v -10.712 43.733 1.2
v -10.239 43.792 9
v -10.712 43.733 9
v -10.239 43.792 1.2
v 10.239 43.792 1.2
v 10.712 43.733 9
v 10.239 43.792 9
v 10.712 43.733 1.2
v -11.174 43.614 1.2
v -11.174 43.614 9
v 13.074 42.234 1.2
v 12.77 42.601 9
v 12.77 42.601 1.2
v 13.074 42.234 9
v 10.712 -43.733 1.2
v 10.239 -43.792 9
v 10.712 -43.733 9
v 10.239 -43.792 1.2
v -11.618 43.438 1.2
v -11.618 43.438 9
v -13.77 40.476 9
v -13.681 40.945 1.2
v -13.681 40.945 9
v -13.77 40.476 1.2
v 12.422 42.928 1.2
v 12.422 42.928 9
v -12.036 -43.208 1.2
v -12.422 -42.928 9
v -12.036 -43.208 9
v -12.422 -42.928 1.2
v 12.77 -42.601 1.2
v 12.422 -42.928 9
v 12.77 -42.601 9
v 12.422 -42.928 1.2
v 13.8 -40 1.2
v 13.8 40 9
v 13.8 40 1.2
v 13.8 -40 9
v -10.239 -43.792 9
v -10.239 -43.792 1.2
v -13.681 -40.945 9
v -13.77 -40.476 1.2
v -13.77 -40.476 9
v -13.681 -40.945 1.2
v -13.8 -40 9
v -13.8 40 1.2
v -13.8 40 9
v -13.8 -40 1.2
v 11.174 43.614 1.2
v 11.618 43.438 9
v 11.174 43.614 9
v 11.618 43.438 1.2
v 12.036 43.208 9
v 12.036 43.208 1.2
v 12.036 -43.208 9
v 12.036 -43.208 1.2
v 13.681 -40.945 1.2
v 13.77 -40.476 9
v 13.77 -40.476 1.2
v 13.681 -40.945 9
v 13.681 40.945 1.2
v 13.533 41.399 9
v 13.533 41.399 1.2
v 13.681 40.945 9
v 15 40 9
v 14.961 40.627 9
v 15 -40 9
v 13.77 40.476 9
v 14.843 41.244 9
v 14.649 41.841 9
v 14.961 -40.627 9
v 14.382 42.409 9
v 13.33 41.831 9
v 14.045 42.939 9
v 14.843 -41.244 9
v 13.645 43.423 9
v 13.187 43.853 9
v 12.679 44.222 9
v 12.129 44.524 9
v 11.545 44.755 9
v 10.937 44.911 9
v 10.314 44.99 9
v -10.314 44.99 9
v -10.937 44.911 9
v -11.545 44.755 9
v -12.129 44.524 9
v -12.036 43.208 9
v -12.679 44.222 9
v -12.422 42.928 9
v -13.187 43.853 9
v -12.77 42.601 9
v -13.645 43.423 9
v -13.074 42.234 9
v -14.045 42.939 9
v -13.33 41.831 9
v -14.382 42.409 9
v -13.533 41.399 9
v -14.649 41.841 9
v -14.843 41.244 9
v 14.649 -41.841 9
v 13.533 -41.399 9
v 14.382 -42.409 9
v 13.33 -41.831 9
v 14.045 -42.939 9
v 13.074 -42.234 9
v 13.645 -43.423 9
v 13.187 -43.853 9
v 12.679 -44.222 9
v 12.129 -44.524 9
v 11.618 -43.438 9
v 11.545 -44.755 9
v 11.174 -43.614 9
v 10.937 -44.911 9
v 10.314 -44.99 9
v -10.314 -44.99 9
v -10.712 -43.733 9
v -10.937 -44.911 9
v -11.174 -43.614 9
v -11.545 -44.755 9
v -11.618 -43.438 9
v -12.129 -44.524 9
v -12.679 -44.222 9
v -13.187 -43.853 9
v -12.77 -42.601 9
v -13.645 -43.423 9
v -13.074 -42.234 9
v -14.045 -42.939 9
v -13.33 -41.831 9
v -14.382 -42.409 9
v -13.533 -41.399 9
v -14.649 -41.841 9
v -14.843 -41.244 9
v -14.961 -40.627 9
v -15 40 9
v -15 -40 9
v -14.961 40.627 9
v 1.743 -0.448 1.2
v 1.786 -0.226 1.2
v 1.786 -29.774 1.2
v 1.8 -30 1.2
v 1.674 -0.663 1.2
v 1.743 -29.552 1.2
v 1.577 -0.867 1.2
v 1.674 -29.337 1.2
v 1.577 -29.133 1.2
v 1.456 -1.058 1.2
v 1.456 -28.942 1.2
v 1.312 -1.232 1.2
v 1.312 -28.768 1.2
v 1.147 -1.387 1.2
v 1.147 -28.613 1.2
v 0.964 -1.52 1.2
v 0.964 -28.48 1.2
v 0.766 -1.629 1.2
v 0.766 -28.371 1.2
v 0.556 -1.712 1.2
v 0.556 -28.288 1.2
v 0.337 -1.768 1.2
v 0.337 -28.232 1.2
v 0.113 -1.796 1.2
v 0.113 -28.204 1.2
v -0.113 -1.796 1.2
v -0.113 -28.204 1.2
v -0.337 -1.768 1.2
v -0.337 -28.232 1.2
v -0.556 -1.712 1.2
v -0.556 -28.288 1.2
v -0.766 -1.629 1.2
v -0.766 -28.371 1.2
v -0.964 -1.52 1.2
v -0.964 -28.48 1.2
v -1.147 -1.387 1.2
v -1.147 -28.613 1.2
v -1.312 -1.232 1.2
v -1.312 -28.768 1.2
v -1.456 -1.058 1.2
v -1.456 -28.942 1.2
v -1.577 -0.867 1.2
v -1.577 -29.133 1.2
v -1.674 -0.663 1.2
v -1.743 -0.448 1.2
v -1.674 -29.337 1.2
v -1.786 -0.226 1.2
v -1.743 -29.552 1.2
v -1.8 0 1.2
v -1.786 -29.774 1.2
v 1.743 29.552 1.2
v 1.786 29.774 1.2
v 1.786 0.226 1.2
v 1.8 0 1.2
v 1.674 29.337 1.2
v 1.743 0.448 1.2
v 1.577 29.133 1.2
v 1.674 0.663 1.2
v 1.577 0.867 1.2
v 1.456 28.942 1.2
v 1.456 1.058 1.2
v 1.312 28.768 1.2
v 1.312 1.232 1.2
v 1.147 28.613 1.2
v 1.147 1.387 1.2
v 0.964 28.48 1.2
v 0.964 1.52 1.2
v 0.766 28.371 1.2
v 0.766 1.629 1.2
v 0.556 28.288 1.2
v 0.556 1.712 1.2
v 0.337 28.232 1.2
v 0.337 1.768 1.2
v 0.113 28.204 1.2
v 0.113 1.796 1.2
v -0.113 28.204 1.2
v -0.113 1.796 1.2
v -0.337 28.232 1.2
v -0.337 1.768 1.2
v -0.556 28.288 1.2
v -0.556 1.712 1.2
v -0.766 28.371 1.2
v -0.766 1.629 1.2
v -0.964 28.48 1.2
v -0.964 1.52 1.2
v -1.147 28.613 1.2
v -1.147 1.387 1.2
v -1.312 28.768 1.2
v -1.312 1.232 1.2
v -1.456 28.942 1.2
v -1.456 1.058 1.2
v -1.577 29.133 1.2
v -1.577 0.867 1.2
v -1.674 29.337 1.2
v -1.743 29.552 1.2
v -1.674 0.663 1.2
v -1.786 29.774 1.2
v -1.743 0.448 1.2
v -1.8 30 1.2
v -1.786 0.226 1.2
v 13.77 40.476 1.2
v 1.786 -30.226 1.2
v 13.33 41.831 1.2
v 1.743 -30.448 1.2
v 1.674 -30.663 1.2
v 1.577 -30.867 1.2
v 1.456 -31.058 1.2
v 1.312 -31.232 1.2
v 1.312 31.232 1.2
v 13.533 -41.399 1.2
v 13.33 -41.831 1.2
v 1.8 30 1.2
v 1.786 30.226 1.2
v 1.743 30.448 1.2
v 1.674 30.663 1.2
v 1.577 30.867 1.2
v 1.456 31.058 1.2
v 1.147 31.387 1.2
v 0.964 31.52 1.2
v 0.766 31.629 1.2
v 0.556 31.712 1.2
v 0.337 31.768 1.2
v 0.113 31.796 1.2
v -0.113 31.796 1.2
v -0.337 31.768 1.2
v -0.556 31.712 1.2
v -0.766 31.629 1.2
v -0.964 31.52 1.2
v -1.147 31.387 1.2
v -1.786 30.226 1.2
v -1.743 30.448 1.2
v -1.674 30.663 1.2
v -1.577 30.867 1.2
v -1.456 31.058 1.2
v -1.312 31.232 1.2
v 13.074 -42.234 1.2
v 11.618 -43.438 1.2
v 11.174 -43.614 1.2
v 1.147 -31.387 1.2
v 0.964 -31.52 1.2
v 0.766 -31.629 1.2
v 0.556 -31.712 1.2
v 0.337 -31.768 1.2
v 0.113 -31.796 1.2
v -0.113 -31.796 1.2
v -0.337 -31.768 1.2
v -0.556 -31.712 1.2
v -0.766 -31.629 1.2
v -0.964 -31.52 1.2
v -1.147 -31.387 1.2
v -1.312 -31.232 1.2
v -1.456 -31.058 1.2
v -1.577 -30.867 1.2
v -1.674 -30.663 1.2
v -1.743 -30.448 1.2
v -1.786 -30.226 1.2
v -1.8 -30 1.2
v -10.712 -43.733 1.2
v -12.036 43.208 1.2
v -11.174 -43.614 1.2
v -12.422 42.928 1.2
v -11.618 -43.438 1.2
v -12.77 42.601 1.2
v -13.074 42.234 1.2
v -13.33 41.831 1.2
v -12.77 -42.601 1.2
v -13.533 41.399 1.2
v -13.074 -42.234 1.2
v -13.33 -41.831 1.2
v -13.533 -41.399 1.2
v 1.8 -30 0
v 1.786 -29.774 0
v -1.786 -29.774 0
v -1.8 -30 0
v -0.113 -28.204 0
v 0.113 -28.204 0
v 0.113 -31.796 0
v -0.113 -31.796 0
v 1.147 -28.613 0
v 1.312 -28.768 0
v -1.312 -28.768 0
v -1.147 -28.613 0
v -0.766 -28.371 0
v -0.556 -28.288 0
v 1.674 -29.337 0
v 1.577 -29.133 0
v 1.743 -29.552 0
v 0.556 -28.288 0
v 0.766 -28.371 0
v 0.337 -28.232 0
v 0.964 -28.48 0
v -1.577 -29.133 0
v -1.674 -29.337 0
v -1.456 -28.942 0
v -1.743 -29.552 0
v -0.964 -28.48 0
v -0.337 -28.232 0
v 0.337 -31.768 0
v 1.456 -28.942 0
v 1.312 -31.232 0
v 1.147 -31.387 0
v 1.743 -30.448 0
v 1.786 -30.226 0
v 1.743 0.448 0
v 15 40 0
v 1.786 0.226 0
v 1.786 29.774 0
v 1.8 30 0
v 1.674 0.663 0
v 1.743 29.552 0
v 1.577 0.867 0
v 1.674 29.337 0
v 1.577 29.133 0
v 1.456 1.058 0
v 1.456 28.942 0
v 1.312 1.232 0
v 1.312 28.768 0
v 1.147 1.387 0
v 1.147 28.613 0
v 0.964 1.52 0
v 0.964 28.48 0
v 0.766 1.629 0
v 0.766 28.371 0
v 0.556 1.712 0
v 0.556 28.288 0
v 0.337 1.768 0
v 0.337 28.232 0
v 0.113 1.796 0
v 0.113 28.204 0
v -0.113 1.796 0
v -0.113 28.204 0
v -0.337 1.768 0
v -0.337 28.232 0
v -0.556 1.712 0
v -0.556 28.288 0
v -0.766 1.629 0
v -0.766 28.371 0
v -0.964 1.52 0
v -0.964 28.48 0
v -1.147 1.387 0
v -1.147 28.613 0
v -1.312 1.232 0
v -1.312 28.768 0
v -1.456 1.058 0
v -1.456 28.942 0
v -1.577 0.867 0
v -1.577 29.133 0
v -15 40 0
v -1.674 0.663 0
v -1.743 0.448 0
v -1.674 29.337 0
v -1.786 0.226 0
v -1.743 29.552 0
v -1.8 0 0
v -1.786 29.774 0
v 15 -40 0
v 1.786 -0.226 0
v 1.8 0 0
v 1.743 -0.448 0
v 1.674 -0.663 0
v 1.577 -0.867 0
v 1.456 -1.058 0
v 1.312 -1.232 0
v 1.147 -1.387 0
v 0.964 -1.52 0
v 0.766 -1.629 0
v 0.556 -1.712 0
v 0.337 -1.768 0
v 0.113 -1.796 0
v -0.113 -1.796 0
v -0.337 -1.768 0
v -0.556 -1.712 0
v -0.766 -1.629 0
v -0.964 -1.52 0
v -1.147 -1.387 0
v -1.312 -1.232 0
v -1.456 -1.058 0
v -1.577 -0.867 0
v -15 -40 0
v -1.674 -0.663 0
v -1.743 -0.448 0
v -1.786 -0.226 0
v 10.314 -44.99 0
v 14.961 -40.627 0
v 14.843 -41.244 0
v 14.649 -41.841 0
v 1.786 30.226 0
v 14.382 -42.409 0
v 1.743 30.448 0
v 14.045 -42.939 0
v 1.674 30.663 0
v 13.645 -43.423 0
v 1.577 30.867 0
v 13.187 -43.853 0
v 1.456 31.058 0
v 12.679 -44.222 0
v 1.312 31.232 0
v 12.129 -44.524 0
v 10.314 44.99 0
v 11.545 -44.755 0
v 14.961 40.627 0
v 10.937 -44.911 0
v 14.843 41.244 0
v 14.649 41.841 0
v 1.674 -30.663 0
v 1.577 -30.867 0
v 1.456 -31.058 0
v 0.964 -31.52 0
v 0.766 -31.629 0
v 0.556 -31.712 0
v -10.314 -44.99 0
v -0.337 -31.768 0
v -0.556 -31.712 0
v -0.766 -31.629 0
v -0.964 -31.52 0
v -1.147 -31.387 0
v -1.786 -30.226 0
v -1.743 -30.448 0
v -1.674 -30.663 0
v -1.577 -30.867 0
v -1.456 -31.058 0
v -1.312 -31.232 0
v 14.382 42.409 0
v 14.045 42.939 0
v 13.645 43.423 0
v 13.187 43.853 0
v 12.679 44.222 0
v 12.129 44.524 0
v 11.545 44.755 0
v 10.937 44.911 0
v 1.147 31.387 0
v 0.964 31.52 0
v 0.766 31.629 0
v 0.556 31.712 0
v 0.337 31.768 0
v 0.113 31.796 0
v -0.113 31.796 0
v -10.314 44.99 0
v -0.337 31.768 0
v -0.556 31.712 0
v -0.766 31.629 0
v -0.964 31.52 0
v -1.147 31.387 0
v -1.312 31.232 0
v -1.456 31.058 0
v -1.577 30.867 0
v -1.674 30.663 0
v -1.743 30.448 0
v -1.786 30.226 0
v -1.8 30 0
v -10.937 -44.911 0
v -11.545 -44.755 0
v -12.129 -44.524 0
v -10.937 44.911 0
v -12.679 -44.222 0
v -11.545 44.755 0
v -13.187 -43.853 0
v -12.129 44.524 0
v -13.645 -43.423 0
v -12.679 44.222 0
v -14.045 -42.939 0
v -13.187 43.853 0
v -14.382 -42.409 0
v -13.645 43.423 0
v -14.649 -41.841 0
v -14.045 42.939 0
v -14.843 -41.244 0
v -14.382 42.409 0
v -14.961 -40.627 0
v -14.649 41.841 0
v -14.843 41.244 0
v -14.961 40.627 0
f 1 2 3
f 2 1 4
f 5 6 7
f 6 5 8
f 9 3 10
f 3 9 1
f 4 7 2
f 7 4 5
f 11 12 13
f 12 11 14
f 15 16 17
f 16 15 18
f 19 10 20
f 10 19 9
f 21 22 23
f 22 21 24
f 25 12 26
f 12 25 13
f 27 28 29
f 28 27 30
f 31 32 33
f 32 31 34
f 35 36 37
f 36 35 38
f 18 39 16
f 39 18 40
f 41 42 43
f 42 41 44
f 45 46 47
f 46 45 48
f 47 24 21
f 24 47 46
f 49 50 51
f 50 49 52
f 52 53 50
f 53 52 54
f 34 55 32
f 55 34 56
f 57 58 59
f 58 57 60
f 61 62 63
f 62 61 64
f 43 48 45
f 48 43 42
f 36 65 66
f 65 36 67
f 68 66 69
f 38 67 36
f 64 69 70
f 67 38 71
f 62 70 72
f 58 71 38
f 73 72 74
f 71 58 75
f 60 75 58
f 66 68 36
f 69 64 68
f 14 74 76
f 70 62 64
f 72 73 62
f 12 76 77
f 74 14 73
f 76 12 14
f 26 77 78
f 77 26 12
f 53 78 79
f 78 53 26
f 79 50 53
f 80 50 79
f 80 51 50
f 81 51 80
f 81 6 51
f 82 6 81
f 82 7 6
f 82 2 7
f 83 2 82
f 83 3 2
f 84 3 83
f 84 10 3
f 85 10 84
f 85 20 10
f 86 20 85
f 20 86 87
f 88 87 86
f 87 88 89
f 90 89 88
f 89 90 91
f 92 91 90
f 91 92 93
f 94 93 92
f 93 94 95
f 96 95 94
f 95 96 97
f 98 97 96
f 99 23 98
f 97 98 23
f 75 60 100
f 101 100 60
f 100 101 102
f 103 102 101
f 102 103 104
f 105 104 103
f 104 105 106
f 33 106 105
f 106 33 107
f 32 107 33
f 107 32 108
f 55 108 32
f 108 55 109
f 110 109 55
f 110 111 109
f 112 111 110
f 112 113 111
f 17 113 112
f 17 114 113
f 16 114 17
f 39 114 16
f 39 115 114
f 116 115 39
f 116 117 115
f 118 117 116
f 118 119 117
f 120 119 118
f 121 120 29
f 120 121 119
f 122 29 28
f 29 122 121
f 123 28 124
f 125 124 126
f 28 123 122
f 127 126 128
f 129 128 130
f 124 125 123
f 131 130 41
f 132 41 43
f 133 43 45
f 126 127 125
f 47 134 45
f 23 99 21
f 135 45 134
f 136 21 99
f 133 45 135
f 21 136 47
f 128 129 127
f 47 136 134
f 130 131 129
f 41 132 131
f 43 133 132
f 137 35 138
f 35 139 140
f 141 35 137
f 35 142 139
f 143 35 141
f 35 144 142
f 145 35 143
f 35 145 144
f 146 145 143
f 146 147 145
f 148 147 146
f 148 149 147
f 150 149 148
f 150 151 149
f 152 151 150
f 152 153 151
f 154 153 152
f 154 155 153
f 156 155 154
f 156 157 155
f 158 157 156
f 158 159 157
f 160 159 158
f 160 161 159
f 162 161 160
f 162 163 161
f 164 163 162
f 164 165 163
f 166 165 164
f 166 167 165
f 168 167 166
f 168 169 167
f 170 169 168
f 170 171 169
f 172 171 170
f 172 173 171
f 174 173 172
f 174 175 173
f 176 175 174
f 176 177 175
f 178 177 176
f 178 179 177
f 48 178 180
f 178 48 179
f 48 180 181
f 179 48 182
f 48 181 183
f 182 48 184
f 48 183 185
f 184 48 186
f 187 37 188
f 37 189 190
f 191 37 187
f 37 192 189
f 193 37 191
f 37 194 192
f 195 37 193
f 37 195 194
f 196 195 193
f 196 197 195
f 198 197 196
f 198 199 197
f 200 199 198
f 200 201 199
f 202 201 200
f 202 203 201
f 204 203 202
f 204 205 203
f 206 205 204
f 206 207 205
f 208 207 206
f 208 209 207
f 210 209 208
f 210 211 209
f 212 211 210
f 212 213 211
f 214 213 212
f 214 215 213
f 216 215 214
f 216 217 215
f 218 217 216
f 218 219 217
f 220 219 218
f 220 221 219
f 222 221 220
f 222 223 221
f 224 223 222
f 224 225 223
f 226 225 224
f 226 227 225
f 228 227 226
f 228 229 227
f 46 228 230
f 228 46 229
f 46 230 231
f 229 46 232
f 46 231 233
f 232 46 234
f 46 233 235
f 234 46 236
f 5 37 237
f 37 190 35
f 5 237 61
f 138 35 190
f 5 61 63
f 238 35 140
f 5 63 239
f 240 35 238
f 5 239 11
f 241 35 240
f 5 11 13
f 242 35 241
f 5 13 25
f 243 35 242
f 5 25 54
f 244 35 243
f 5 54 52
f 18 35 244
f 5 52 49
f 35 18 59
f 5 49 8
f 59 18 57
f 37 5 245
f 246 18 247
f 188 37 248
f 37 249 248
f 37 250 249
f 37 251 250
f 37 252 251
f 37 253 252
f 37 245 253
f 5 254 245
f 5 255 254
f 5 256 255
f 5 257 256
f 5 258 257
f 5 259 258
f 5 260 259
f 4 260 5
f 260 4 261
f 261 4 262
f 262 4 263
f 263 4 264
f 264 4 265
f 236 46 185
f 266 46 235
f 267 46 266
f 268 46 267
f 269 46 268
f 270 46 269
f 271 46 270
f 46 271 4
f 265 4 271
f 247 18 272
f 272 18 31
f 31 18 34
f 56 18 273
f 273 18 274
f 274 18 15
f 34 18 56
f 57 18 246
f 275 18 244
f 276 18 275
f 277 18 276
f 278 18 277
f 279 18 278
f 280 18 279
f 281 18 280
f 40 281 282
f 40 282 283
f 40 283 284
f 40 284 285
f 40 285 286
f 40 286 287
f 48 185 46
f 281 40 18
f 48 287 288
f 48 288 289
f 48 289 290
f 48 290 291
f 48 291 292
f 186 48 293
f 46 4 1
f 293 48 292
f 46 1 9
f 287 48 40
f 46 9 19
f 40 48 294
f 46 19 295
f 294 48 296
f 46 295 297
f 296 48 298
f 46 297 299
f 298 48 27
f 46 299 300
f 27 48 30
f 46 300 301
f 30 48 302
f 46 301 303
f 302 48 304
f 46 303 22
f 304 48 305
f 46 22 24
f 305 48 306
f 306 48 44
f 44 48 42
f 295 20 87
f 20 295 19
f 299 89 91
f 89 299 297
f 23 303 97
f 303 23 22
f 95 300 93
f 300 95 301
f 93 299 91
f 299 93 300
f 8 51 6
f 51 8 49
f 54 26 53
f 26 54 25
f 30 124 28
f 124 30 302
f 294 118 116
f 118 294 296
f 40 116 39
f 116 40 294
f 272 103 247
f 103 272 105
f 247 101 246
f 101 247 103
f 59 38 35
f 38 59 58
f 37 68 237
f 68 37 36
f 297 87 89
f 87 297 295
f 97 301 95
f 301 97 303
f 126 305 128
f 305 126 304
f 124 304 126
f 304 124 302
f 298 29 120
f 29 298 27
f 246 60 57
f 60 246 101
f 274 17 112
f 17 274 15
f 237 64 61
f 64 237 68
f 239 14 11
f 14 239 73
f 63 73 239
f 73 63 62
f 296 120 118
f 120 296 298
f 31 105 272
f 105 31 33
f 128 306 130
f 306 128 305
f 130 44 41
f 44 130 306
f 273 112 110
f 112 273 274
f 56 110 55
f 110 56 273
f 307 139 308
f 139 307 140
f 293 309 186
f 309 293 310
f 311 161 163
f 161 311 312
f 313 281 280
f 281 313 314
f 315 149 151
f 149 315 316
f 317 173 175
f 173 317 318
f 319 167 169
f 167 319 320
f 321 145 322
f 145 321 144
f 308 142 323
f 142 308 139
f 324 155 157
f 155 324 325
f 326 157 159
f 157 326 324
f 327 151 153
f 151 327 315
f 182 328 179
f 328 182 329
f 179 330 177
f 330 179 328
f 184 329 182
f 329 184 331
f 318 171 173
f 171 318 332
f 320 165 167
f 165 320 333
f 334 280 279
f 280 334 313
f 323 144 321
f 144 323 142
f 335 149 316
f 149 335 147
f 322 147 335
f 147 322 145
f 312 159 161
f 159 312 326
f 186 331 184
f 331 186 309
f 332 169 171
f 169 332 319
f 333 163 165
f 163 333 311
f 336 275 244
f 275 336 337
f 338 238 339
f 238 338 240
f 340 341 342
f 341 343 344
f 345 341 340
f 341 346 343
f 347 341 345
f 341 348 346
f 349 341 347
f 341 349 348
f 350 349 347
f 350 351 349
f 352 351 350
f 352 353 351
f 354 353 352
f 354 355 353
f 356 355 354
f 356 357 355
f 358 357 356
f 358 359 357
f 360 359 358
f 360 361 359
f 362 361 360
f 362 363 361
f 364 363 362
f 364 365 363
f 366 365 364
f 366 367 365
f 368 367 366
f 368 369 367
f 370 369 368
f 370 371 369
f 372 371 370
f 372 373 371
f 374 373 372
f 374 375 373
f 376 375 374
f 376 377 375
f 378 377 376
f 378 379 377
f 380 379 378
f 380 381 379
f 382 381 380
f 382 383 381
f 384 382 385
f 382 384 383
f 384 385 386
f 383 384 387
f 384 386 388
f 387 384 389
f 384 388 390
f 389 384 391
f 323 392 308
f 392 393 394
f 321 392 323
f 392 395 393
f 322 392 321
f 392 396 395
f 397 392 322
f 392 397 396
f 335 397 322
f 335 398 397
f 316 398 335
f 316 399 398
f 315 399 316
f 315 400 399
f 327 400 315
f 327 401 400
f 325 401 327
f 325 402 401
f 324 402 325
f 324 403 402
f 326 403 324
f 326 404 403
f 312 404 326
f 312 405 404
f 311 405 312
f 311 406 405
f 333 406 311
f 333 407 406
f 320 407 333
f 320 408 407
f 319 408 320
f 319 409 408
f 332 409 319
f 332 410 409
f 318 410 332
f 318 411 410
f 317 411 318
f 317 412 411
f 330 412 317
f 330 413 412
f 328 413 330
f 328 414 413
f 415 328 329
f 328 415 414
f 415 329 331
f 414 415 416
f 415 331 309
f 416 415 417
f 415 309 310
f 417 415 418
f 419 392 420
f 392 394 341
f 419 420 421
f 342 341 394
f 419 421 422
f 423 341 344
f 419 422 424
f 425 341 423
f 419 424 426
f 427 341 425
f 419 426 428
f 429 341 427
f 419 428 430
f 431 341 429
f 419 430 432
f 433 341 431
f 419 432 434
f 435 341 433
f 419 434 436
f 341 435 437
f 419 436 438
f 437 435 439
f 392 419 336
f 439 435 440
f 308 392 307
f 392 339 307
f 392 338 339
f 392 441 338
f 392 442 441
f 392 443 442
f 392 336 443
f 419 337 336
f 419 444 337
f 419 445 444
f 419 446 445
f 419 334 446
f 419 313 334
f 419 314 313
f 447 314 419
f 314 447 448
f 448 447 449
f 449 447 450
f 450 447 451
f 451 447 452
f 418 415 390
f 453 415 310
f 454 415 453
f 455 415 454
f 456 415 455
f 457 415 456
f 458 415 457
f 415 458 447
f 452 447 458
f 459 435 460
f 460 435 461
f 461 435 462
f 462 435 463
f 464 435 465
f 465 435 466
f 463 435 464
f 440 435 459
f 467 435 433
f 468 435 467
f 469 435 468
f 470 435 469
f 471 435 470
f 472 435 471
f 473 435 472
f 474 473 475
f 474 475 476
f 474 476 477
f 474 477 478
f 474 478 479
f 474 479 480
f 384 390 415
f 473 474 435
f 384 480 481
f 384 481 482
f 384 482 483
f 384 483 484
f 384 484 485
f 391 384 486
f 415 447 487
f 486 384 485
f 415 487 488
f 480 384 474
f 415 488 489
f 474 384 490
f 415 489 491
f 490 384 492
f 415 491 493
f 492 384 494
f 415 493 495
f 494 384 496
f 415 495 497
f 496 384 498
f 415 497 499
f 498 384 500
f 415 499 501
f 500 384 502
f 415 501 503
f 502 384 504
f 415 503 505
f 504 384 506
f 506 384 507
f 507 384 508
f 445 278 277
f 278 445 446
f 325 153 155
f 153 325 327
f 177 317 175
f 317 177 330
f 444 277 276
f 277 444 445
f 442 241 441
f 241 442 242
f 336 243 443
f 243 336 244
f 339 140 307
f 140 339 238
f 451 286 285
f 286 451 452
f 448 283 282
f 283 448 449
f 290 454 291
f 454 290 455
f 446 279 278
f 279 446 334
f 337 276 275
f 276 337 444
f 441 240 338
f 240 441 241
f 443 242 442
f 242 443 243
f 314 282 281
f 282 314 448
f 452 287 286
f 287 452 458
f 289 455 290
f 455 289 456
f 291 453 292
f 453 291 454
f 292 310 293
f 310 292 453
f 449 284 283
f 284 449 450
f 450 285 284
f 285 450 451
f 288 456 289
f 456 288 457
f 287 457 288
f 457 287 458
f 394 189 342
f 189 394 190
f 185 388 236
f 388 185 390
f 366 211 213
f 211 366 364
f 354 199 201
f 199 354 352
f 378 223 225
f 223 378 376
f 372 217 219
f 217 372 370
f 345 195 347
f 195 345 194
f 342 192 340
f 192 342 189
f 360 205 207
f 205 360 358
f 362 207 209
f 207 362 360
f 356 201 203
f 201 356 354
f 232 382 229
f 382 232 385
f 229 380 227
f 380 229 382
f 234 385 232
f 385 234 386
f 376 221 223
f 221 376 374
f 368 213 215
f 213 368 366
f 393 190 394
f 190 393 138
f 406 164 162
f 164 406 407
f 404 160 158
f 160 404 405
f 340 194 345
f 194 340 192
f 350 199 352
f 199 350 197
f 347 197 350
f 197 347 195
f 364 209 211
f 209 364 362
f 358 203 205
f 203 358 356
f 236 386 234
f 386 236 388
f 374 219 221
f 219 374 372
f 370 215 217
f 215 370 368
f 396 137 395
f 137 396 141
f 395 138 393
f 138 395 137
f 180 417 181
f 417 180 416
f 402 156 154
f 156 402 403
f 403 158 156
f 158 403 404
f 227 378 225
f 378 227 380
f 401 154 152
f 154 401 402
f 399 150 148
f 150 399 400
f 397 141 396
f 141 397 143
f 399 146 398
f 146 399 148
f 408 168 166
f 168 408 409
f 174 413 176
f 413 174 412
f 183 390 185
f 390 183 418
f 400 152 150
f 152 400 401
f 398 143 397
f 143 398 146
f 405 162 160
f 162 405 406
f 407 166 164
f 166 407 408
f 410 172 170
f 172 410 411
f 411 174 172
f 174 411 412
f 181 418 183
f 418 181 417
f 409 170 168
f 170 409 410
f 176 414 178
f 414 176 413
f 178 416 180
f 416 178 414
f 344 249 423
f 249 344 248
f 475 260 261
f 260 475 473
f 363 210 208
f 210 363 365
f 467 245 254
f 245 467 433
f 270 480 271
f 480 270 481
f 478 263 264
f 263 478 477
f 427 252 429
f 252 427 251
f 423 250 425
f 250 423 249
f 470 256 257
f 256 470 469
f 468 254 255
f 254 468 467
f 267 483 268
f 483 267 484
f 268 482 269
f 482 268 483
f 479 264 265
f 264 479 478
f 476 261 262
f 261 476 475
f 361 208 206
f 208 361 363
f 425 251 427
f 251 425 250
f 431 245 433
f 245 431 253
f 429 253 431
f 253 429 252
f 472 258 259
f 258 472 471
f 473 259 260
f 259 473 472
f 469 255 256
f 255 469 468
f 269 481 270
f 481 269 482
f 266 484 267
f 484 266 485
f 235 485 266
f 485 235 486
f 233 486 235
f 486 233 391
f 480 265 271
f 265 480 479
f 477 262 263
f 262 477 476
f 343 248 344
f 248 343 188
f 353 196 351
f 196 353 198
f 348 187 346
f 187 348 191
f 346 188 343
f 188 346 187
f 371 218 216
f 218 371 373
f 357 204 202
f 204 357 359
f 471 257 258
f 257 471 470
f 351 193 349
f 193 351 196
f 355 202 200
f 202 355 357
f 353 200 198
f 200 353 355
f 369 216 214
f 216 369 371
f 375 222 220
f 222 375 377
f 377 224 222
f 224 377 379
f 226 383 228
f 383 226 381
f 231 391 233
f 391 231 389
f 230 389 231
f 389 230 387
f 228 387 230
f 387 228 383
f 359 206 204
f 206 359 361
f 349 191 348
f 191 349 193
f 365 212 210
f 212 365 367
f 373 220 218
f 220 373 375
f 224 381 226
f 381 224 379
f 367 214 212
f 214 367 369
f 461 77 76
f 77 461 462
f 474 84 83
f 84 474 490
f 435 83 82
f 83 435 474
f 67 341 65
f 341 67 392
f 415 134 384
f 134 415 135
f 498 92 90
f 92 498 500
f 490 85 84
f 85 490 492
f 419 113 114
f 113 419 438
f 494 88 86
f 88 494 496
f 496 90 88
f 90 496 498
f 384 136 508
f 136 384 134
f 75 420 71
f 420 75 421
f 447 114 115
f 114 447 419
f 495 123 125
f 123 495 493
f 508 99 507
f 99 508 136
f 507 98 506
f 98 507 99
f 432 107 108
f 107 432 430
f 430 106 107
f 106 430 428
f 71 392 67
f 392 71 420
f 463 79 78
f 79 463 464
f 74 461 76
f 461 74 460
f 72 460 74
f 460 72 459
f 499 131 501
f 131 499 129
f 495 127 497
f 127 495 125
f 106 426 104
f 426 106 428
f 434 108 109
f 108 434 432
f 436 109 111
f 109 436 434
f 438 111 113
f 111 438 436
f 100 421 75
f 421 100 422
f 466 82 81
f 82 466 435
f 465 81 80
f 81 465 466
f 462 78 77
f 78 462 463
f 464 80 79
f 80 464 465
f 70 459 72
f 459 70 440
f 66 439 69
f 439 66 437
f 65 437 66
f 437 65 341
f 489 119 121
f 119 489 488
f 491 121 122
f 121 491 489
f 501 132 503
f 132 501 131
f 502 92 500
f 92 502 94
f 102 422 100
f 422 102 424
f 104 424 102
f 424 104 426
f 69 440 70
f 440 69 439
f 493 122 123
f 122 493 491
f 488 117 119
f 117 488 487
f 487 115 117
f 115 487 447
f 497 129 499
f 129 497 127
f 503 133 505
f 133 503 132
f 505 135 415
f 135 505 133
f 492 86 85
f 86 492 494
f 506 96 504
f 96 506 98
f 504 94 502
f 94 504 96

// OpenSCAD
$fn = 50;


difference() {
	union() {
		hull() {
			translate(v = [-10.0000000000, 40.0000000000, 0]) {
				cylinder(h = 9, r = 5);
			}
			translate(v = [10.0000000000, 40.0000000000, 0]) {
				cylinder(h = 9, r = 5);
			}
			translate(v = [-10.0000000000, -40.0000000000, 0]) {
				cylinder(h = 9, r = 5);
			}
			translate(v = [10.0000000000, -40.0000000000, 0]) {
				cylinder(h = 9, r = 5);
			}
		}
	}
	union() {
		translate(v = [0, 0, 1.2000000000]) {
			hull() {
				translate(v = [-10.0000000000, 40.0000000000, 0]) {
					cylinder(h = 7.8000000000, r = 3.8000000000);
				}
				translate(v = [10.0000000000, 40.0000000000, 0]) {
					cylinder(h = 7.8000000000, r = 3.8000000000);
				}
				translate(v = [-10.0000000000, -40.0000000000, 0]) {
					cylinder(h = 7.8000000000, r = 3.8000000000);
				}
				translate(v = [10.0000000000, -40.0000000000, 0]) {
					cylinder(h = 7.8000000000, r = 3.8000000000);
				}
			}
		}
		#translate(v = [0.0000000000, -30.0000000000, 0]) {
			cylinder(h = 1.2000000000, r = 1.8000000000);
		}
		#cylinder(h = 1.2000000000, r = 1.8000000000);
		#translate(v = [0.0000000000, 30.0000000000, 0]) {
			cylinder(h = 1.2000000000, r = 1.8000000000);
		}
	}
}
